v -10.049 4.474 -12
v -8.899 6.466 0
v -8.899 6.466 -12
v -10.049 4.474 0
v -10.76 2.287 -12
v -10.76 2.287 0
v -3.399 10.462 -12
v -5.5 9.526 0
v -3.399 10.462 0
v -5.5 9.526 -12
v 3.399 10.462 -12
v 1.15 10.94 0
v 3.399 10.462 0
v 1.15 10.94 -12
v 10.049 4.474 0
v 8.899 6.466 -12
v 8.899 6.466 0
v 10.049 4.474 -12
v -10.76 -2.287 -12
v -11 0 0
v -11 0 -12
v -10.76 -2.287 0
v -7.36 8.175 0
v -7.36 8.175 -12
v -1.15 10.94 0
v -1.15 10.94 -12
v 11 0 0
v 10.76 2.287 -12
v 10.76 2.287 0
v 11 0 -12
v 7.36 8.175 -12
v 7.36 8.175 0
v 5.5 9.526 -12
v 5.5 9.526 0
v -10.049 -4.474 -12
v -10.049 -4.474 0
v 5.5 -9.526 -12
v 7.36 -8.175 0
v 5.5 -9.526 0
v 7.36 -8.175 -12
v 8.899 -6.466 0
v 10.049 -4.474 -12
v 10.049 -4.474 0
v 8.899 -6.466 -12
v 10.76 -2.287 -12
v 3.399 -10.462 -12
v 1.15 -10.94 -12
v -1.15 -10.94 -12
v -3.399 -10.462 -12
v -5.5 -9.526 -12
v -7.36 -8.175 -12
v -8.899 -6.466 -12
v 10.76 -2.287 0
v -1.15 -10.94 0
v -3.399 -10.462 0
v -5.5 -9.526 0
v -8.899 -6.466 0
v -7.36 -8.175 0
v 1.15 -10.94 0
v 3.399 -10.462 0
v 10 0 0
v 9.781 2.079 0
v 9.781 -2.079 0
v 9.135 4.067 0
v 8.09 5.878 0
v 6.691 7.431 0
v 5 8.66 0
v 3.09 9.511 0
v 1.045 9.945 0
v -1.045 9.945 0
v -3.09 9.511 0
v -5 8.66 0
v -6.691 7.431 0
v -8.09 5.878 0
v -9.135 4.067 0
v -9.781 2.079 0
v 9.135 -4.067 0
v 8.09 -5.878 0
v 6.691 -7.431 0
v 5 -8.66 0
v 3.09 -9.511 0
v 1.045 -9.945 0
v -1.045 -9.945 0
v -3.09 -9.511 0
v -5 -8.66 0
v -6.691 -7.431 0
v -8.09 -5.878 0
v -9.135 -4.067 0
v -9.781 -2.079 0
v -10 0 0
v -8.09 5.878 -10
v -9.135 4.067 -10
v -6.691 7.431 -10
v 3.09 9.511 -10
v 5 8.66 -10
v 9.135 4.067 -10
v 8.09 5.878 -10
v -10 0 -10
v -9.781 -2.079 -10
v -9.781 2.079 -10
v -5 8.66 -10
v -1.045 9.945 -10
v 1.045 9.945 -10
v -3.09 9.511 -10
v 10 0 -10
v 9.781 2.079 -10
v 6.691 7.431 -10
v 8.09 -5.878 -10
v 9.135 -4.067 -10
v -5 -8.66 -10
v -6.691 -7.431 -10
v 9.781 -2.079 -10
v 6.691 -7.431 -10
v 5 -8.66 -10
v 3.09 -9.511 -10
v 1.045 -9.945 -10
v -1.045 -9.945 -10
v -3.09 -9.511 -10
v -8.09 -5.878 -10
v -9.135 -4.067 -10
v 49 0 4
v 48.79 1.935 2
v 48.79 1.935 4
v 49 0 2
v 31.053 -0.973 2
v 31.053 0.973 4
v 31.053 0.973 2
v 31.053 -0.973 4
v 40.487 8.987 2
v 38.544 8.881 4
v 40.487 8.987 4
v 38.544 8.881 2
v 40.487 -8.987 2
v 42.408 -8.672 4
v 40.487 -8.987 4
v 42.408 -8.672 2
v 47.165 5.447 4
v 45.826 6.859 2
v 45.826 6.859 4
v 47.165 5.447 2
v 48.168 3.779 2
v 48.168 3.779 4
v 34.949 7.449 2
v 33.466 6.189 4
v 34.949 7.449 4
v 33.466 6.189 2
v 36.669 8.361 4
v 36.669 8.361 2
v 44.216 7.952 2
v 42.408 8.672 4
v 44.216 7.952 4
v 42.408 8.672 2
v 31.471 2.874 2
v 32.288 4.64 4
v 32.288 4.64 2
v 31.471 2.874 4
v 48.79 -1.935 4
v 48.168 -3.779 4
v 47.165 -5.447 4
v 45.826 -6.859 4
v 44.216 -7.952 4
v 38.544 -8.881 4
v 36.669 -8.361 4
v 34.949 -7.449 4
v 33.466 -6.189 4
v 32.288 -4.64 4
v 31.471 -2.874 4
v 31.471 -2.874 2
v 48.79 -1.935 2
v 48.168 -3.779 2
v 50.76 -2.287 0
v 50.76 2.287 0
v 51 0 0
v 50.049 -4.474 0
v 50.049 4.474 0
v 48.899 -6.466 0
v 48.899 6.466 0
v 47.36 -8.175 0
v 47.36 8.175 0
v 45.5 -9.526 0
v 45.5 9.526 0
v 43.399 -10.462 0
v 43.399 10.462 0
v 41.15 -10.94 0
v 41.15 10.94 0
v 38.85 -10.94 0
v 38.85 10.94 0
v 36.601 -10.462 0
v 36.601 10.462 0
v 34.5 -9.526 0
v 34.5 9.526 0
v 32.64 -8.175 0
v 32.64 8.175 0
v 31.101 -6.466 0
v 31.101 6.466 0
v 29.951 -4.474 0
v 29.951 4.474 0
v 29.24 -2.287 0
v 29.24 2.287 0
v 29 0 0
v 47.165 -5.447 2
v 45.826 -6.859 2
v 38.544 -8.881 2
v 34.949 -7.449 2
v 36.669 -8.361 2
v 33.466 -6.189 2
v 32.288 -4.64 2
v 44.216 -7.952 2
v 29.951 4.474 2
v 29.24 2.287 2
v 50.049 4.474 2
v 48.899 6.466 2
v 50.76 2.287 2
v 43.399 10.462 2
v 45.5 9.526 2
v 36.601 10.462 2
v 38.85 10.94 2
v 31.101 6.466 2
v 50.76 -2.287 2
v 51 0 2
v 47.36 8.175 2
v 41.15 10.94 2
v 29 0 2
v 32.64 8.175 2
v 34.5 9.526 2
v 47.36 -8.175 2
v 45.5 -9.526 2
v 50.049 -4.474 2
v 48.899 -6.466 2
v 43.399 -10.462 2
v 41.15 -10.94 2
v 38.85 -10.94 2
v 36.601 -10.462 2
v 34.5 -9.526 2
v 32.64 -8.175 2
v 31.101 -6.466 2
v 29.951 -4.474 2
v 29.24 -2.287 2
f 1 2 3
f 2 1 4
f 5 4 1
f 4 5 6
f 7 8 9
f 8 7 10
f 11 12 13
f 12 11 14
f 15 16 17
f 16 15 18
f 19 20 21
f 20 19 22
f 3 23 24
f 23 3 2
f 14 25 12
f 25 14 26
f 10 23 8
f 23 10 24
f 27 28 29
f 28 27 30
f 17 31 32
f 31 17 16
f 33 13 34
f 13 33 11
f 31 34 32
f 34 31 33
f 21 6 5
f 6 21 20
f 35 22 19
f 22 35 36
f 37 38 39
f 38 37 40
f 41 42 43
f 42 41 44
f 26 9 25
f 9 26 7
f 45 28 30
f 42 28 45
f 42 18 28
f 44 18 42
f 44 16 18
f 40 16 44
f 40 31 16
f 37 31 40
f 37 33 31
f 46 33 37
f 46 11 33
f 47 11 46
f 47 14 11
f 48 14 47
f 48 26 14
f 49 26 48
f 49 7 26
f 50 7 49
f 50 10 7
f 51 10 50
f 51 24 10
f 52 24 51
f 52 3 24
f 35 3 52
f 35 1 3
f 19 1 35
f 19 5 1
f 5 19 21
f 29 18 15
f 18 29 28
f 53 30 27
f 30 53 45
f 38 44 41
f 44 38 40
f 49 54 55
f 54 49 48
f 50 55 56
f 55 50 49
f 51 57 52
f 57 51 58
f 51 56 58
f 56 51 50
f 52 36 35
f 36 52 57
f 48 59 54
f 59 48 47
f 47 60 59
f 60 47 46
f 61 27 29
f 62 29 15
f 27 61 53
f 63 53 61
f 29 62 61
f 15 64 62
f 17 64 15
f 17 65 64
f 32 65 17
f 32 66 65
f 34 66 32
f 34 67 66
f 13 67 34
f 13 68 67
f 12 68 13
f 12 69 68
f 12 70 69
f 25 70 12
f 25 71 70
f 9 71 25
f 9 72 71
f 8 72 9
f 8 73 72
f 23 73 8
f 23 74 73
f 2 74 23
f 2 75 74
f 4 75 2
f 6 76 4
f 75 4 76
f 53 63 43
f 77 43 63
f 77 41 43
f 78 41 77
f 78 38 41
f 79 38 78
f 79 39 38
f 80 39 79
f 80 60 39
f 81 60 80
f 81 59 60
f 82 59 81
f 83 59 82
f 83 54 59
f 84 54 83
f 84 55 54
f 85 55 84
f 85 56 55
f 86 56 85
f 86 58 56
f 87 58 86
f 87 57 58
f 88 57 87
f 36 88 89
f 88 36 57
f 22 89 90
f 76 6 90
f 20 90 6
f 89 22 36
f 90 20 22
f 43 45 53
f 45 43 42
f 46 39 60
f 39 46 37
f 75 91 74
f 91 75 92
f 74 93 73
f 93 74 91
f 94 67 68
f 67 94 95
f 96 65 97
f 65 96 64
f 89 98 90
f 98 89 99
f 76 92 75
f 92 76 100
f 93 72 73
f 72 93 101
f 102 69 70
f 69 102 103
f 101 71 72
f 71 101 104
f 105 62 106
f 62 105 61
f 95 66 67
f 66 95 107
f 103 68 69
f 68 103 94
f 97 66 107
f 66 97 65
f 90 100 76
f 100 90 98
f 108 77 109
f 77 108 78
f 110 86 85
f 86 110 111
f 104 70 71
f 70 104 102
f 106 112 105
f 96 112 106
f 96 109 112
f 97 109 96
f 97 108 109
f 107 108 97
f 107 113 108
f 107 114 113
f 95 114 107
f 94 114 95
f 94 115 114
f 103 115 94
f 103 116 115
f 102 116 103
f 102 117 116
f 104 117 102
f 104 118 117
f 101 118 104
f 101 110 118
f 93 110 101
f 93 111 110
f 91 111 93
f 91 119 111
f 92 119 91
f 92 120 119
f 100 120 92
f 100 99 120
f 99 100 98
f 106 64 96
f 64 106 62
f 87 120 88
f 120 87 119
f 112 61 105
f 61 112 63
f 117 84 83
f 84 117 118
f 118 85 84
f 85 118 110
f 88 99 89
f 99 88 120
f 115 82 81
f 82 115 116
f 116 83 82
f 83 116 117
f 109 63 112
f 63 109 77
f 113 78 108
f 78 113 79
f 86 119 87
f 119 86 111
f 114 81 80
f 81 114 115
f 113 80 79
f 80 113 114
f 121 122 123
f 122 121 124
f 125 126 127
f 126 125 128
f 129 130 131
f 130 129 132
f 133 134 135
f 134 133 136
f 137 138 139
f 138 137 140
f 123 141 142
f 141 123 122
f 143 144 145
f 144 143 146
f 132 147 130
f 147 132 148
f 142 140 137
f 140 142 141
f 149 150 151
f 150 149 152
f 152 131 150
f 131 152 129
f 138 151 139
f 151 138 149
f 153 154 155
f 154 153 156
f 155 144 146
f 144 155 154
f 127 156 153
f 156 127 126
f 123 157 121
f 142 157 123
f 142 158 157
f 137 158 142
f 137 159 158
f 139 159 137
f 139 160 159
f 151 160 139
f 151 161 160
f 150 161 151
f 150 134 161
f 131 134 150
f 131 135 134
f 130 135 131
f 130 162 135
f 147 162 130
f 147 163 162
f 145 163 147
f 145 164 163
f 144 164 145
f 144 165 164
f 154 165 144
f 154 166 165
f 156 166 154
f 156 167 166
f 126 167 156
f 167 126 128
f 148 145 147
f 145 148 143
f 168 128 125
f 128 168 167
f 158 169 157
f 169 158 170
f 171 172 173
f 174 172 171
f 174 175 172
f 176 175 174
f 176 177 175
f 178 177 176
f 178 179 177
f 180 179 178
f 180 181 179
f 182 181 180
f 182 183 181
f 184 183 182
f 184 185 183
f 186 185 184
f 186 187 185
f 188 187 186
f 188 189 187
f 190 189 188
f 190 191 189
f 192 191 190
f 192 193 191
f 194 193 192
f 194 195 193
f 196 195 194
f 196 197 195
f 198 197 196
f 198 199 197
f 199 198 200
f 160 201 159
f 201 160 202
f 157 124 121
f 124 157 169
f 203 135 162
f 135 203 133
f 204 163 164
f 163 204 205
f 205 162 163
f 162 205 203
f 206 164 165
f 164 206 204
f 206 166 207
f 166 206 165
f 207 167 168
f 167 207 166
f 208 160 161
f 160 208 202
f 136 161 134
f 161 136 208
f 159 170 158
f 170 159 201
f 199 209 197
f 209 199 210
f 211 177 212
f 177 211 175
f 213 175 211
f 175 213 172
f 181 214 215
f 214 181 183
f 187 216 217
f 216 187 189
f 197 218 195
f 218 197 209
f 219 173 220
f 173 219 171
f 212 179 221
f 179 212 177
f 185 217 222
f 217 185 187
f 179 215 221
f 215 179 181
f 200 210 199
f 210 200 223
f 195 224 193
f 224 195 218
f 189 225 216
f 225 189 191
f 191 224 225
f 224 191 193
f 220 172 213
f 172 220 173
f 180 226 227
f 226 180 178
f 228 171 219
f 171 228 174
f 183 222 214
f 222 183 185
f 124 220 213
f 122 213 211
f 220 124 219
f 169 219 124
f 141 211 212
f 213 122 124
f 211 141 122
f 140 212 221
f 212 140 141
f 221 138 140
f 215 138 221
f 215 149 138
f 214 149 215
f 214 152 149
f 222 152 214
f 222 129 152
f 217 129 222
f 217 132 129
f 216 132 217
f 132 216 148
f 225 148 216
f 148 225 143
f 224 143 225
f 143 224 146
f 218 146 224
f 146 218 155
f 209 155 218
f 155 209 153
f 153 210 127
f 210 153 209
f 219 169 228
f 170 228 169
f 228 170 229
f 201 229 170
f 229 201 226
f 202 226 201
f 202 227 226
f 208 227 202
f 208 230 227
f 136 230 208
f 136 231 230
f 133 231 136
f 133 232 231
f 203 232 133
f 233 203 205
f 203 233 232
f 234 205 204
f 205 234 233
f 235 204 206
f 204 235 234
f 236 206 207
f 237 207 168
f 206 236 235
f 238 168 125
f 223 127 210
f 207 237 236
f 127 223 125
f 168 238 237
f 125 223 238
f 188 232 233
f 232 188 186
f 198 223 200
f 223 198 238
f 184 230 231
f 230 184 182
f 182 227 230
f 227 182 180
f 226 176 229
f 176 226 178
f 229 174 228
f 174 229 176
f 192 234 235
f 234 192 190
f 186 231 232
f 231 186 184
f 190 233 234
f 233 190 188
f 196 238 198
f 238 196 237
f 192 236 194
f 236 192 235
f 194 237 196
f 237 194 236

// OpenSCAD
rotate([0,180,0])
difference() {
cylinder(d=22,h=12);
cylinder(d=20,h=10);
}
translate([40,0,0])
union () {
cylinder(d=18,h=4);
cylinder(d=22,h=2);
}
